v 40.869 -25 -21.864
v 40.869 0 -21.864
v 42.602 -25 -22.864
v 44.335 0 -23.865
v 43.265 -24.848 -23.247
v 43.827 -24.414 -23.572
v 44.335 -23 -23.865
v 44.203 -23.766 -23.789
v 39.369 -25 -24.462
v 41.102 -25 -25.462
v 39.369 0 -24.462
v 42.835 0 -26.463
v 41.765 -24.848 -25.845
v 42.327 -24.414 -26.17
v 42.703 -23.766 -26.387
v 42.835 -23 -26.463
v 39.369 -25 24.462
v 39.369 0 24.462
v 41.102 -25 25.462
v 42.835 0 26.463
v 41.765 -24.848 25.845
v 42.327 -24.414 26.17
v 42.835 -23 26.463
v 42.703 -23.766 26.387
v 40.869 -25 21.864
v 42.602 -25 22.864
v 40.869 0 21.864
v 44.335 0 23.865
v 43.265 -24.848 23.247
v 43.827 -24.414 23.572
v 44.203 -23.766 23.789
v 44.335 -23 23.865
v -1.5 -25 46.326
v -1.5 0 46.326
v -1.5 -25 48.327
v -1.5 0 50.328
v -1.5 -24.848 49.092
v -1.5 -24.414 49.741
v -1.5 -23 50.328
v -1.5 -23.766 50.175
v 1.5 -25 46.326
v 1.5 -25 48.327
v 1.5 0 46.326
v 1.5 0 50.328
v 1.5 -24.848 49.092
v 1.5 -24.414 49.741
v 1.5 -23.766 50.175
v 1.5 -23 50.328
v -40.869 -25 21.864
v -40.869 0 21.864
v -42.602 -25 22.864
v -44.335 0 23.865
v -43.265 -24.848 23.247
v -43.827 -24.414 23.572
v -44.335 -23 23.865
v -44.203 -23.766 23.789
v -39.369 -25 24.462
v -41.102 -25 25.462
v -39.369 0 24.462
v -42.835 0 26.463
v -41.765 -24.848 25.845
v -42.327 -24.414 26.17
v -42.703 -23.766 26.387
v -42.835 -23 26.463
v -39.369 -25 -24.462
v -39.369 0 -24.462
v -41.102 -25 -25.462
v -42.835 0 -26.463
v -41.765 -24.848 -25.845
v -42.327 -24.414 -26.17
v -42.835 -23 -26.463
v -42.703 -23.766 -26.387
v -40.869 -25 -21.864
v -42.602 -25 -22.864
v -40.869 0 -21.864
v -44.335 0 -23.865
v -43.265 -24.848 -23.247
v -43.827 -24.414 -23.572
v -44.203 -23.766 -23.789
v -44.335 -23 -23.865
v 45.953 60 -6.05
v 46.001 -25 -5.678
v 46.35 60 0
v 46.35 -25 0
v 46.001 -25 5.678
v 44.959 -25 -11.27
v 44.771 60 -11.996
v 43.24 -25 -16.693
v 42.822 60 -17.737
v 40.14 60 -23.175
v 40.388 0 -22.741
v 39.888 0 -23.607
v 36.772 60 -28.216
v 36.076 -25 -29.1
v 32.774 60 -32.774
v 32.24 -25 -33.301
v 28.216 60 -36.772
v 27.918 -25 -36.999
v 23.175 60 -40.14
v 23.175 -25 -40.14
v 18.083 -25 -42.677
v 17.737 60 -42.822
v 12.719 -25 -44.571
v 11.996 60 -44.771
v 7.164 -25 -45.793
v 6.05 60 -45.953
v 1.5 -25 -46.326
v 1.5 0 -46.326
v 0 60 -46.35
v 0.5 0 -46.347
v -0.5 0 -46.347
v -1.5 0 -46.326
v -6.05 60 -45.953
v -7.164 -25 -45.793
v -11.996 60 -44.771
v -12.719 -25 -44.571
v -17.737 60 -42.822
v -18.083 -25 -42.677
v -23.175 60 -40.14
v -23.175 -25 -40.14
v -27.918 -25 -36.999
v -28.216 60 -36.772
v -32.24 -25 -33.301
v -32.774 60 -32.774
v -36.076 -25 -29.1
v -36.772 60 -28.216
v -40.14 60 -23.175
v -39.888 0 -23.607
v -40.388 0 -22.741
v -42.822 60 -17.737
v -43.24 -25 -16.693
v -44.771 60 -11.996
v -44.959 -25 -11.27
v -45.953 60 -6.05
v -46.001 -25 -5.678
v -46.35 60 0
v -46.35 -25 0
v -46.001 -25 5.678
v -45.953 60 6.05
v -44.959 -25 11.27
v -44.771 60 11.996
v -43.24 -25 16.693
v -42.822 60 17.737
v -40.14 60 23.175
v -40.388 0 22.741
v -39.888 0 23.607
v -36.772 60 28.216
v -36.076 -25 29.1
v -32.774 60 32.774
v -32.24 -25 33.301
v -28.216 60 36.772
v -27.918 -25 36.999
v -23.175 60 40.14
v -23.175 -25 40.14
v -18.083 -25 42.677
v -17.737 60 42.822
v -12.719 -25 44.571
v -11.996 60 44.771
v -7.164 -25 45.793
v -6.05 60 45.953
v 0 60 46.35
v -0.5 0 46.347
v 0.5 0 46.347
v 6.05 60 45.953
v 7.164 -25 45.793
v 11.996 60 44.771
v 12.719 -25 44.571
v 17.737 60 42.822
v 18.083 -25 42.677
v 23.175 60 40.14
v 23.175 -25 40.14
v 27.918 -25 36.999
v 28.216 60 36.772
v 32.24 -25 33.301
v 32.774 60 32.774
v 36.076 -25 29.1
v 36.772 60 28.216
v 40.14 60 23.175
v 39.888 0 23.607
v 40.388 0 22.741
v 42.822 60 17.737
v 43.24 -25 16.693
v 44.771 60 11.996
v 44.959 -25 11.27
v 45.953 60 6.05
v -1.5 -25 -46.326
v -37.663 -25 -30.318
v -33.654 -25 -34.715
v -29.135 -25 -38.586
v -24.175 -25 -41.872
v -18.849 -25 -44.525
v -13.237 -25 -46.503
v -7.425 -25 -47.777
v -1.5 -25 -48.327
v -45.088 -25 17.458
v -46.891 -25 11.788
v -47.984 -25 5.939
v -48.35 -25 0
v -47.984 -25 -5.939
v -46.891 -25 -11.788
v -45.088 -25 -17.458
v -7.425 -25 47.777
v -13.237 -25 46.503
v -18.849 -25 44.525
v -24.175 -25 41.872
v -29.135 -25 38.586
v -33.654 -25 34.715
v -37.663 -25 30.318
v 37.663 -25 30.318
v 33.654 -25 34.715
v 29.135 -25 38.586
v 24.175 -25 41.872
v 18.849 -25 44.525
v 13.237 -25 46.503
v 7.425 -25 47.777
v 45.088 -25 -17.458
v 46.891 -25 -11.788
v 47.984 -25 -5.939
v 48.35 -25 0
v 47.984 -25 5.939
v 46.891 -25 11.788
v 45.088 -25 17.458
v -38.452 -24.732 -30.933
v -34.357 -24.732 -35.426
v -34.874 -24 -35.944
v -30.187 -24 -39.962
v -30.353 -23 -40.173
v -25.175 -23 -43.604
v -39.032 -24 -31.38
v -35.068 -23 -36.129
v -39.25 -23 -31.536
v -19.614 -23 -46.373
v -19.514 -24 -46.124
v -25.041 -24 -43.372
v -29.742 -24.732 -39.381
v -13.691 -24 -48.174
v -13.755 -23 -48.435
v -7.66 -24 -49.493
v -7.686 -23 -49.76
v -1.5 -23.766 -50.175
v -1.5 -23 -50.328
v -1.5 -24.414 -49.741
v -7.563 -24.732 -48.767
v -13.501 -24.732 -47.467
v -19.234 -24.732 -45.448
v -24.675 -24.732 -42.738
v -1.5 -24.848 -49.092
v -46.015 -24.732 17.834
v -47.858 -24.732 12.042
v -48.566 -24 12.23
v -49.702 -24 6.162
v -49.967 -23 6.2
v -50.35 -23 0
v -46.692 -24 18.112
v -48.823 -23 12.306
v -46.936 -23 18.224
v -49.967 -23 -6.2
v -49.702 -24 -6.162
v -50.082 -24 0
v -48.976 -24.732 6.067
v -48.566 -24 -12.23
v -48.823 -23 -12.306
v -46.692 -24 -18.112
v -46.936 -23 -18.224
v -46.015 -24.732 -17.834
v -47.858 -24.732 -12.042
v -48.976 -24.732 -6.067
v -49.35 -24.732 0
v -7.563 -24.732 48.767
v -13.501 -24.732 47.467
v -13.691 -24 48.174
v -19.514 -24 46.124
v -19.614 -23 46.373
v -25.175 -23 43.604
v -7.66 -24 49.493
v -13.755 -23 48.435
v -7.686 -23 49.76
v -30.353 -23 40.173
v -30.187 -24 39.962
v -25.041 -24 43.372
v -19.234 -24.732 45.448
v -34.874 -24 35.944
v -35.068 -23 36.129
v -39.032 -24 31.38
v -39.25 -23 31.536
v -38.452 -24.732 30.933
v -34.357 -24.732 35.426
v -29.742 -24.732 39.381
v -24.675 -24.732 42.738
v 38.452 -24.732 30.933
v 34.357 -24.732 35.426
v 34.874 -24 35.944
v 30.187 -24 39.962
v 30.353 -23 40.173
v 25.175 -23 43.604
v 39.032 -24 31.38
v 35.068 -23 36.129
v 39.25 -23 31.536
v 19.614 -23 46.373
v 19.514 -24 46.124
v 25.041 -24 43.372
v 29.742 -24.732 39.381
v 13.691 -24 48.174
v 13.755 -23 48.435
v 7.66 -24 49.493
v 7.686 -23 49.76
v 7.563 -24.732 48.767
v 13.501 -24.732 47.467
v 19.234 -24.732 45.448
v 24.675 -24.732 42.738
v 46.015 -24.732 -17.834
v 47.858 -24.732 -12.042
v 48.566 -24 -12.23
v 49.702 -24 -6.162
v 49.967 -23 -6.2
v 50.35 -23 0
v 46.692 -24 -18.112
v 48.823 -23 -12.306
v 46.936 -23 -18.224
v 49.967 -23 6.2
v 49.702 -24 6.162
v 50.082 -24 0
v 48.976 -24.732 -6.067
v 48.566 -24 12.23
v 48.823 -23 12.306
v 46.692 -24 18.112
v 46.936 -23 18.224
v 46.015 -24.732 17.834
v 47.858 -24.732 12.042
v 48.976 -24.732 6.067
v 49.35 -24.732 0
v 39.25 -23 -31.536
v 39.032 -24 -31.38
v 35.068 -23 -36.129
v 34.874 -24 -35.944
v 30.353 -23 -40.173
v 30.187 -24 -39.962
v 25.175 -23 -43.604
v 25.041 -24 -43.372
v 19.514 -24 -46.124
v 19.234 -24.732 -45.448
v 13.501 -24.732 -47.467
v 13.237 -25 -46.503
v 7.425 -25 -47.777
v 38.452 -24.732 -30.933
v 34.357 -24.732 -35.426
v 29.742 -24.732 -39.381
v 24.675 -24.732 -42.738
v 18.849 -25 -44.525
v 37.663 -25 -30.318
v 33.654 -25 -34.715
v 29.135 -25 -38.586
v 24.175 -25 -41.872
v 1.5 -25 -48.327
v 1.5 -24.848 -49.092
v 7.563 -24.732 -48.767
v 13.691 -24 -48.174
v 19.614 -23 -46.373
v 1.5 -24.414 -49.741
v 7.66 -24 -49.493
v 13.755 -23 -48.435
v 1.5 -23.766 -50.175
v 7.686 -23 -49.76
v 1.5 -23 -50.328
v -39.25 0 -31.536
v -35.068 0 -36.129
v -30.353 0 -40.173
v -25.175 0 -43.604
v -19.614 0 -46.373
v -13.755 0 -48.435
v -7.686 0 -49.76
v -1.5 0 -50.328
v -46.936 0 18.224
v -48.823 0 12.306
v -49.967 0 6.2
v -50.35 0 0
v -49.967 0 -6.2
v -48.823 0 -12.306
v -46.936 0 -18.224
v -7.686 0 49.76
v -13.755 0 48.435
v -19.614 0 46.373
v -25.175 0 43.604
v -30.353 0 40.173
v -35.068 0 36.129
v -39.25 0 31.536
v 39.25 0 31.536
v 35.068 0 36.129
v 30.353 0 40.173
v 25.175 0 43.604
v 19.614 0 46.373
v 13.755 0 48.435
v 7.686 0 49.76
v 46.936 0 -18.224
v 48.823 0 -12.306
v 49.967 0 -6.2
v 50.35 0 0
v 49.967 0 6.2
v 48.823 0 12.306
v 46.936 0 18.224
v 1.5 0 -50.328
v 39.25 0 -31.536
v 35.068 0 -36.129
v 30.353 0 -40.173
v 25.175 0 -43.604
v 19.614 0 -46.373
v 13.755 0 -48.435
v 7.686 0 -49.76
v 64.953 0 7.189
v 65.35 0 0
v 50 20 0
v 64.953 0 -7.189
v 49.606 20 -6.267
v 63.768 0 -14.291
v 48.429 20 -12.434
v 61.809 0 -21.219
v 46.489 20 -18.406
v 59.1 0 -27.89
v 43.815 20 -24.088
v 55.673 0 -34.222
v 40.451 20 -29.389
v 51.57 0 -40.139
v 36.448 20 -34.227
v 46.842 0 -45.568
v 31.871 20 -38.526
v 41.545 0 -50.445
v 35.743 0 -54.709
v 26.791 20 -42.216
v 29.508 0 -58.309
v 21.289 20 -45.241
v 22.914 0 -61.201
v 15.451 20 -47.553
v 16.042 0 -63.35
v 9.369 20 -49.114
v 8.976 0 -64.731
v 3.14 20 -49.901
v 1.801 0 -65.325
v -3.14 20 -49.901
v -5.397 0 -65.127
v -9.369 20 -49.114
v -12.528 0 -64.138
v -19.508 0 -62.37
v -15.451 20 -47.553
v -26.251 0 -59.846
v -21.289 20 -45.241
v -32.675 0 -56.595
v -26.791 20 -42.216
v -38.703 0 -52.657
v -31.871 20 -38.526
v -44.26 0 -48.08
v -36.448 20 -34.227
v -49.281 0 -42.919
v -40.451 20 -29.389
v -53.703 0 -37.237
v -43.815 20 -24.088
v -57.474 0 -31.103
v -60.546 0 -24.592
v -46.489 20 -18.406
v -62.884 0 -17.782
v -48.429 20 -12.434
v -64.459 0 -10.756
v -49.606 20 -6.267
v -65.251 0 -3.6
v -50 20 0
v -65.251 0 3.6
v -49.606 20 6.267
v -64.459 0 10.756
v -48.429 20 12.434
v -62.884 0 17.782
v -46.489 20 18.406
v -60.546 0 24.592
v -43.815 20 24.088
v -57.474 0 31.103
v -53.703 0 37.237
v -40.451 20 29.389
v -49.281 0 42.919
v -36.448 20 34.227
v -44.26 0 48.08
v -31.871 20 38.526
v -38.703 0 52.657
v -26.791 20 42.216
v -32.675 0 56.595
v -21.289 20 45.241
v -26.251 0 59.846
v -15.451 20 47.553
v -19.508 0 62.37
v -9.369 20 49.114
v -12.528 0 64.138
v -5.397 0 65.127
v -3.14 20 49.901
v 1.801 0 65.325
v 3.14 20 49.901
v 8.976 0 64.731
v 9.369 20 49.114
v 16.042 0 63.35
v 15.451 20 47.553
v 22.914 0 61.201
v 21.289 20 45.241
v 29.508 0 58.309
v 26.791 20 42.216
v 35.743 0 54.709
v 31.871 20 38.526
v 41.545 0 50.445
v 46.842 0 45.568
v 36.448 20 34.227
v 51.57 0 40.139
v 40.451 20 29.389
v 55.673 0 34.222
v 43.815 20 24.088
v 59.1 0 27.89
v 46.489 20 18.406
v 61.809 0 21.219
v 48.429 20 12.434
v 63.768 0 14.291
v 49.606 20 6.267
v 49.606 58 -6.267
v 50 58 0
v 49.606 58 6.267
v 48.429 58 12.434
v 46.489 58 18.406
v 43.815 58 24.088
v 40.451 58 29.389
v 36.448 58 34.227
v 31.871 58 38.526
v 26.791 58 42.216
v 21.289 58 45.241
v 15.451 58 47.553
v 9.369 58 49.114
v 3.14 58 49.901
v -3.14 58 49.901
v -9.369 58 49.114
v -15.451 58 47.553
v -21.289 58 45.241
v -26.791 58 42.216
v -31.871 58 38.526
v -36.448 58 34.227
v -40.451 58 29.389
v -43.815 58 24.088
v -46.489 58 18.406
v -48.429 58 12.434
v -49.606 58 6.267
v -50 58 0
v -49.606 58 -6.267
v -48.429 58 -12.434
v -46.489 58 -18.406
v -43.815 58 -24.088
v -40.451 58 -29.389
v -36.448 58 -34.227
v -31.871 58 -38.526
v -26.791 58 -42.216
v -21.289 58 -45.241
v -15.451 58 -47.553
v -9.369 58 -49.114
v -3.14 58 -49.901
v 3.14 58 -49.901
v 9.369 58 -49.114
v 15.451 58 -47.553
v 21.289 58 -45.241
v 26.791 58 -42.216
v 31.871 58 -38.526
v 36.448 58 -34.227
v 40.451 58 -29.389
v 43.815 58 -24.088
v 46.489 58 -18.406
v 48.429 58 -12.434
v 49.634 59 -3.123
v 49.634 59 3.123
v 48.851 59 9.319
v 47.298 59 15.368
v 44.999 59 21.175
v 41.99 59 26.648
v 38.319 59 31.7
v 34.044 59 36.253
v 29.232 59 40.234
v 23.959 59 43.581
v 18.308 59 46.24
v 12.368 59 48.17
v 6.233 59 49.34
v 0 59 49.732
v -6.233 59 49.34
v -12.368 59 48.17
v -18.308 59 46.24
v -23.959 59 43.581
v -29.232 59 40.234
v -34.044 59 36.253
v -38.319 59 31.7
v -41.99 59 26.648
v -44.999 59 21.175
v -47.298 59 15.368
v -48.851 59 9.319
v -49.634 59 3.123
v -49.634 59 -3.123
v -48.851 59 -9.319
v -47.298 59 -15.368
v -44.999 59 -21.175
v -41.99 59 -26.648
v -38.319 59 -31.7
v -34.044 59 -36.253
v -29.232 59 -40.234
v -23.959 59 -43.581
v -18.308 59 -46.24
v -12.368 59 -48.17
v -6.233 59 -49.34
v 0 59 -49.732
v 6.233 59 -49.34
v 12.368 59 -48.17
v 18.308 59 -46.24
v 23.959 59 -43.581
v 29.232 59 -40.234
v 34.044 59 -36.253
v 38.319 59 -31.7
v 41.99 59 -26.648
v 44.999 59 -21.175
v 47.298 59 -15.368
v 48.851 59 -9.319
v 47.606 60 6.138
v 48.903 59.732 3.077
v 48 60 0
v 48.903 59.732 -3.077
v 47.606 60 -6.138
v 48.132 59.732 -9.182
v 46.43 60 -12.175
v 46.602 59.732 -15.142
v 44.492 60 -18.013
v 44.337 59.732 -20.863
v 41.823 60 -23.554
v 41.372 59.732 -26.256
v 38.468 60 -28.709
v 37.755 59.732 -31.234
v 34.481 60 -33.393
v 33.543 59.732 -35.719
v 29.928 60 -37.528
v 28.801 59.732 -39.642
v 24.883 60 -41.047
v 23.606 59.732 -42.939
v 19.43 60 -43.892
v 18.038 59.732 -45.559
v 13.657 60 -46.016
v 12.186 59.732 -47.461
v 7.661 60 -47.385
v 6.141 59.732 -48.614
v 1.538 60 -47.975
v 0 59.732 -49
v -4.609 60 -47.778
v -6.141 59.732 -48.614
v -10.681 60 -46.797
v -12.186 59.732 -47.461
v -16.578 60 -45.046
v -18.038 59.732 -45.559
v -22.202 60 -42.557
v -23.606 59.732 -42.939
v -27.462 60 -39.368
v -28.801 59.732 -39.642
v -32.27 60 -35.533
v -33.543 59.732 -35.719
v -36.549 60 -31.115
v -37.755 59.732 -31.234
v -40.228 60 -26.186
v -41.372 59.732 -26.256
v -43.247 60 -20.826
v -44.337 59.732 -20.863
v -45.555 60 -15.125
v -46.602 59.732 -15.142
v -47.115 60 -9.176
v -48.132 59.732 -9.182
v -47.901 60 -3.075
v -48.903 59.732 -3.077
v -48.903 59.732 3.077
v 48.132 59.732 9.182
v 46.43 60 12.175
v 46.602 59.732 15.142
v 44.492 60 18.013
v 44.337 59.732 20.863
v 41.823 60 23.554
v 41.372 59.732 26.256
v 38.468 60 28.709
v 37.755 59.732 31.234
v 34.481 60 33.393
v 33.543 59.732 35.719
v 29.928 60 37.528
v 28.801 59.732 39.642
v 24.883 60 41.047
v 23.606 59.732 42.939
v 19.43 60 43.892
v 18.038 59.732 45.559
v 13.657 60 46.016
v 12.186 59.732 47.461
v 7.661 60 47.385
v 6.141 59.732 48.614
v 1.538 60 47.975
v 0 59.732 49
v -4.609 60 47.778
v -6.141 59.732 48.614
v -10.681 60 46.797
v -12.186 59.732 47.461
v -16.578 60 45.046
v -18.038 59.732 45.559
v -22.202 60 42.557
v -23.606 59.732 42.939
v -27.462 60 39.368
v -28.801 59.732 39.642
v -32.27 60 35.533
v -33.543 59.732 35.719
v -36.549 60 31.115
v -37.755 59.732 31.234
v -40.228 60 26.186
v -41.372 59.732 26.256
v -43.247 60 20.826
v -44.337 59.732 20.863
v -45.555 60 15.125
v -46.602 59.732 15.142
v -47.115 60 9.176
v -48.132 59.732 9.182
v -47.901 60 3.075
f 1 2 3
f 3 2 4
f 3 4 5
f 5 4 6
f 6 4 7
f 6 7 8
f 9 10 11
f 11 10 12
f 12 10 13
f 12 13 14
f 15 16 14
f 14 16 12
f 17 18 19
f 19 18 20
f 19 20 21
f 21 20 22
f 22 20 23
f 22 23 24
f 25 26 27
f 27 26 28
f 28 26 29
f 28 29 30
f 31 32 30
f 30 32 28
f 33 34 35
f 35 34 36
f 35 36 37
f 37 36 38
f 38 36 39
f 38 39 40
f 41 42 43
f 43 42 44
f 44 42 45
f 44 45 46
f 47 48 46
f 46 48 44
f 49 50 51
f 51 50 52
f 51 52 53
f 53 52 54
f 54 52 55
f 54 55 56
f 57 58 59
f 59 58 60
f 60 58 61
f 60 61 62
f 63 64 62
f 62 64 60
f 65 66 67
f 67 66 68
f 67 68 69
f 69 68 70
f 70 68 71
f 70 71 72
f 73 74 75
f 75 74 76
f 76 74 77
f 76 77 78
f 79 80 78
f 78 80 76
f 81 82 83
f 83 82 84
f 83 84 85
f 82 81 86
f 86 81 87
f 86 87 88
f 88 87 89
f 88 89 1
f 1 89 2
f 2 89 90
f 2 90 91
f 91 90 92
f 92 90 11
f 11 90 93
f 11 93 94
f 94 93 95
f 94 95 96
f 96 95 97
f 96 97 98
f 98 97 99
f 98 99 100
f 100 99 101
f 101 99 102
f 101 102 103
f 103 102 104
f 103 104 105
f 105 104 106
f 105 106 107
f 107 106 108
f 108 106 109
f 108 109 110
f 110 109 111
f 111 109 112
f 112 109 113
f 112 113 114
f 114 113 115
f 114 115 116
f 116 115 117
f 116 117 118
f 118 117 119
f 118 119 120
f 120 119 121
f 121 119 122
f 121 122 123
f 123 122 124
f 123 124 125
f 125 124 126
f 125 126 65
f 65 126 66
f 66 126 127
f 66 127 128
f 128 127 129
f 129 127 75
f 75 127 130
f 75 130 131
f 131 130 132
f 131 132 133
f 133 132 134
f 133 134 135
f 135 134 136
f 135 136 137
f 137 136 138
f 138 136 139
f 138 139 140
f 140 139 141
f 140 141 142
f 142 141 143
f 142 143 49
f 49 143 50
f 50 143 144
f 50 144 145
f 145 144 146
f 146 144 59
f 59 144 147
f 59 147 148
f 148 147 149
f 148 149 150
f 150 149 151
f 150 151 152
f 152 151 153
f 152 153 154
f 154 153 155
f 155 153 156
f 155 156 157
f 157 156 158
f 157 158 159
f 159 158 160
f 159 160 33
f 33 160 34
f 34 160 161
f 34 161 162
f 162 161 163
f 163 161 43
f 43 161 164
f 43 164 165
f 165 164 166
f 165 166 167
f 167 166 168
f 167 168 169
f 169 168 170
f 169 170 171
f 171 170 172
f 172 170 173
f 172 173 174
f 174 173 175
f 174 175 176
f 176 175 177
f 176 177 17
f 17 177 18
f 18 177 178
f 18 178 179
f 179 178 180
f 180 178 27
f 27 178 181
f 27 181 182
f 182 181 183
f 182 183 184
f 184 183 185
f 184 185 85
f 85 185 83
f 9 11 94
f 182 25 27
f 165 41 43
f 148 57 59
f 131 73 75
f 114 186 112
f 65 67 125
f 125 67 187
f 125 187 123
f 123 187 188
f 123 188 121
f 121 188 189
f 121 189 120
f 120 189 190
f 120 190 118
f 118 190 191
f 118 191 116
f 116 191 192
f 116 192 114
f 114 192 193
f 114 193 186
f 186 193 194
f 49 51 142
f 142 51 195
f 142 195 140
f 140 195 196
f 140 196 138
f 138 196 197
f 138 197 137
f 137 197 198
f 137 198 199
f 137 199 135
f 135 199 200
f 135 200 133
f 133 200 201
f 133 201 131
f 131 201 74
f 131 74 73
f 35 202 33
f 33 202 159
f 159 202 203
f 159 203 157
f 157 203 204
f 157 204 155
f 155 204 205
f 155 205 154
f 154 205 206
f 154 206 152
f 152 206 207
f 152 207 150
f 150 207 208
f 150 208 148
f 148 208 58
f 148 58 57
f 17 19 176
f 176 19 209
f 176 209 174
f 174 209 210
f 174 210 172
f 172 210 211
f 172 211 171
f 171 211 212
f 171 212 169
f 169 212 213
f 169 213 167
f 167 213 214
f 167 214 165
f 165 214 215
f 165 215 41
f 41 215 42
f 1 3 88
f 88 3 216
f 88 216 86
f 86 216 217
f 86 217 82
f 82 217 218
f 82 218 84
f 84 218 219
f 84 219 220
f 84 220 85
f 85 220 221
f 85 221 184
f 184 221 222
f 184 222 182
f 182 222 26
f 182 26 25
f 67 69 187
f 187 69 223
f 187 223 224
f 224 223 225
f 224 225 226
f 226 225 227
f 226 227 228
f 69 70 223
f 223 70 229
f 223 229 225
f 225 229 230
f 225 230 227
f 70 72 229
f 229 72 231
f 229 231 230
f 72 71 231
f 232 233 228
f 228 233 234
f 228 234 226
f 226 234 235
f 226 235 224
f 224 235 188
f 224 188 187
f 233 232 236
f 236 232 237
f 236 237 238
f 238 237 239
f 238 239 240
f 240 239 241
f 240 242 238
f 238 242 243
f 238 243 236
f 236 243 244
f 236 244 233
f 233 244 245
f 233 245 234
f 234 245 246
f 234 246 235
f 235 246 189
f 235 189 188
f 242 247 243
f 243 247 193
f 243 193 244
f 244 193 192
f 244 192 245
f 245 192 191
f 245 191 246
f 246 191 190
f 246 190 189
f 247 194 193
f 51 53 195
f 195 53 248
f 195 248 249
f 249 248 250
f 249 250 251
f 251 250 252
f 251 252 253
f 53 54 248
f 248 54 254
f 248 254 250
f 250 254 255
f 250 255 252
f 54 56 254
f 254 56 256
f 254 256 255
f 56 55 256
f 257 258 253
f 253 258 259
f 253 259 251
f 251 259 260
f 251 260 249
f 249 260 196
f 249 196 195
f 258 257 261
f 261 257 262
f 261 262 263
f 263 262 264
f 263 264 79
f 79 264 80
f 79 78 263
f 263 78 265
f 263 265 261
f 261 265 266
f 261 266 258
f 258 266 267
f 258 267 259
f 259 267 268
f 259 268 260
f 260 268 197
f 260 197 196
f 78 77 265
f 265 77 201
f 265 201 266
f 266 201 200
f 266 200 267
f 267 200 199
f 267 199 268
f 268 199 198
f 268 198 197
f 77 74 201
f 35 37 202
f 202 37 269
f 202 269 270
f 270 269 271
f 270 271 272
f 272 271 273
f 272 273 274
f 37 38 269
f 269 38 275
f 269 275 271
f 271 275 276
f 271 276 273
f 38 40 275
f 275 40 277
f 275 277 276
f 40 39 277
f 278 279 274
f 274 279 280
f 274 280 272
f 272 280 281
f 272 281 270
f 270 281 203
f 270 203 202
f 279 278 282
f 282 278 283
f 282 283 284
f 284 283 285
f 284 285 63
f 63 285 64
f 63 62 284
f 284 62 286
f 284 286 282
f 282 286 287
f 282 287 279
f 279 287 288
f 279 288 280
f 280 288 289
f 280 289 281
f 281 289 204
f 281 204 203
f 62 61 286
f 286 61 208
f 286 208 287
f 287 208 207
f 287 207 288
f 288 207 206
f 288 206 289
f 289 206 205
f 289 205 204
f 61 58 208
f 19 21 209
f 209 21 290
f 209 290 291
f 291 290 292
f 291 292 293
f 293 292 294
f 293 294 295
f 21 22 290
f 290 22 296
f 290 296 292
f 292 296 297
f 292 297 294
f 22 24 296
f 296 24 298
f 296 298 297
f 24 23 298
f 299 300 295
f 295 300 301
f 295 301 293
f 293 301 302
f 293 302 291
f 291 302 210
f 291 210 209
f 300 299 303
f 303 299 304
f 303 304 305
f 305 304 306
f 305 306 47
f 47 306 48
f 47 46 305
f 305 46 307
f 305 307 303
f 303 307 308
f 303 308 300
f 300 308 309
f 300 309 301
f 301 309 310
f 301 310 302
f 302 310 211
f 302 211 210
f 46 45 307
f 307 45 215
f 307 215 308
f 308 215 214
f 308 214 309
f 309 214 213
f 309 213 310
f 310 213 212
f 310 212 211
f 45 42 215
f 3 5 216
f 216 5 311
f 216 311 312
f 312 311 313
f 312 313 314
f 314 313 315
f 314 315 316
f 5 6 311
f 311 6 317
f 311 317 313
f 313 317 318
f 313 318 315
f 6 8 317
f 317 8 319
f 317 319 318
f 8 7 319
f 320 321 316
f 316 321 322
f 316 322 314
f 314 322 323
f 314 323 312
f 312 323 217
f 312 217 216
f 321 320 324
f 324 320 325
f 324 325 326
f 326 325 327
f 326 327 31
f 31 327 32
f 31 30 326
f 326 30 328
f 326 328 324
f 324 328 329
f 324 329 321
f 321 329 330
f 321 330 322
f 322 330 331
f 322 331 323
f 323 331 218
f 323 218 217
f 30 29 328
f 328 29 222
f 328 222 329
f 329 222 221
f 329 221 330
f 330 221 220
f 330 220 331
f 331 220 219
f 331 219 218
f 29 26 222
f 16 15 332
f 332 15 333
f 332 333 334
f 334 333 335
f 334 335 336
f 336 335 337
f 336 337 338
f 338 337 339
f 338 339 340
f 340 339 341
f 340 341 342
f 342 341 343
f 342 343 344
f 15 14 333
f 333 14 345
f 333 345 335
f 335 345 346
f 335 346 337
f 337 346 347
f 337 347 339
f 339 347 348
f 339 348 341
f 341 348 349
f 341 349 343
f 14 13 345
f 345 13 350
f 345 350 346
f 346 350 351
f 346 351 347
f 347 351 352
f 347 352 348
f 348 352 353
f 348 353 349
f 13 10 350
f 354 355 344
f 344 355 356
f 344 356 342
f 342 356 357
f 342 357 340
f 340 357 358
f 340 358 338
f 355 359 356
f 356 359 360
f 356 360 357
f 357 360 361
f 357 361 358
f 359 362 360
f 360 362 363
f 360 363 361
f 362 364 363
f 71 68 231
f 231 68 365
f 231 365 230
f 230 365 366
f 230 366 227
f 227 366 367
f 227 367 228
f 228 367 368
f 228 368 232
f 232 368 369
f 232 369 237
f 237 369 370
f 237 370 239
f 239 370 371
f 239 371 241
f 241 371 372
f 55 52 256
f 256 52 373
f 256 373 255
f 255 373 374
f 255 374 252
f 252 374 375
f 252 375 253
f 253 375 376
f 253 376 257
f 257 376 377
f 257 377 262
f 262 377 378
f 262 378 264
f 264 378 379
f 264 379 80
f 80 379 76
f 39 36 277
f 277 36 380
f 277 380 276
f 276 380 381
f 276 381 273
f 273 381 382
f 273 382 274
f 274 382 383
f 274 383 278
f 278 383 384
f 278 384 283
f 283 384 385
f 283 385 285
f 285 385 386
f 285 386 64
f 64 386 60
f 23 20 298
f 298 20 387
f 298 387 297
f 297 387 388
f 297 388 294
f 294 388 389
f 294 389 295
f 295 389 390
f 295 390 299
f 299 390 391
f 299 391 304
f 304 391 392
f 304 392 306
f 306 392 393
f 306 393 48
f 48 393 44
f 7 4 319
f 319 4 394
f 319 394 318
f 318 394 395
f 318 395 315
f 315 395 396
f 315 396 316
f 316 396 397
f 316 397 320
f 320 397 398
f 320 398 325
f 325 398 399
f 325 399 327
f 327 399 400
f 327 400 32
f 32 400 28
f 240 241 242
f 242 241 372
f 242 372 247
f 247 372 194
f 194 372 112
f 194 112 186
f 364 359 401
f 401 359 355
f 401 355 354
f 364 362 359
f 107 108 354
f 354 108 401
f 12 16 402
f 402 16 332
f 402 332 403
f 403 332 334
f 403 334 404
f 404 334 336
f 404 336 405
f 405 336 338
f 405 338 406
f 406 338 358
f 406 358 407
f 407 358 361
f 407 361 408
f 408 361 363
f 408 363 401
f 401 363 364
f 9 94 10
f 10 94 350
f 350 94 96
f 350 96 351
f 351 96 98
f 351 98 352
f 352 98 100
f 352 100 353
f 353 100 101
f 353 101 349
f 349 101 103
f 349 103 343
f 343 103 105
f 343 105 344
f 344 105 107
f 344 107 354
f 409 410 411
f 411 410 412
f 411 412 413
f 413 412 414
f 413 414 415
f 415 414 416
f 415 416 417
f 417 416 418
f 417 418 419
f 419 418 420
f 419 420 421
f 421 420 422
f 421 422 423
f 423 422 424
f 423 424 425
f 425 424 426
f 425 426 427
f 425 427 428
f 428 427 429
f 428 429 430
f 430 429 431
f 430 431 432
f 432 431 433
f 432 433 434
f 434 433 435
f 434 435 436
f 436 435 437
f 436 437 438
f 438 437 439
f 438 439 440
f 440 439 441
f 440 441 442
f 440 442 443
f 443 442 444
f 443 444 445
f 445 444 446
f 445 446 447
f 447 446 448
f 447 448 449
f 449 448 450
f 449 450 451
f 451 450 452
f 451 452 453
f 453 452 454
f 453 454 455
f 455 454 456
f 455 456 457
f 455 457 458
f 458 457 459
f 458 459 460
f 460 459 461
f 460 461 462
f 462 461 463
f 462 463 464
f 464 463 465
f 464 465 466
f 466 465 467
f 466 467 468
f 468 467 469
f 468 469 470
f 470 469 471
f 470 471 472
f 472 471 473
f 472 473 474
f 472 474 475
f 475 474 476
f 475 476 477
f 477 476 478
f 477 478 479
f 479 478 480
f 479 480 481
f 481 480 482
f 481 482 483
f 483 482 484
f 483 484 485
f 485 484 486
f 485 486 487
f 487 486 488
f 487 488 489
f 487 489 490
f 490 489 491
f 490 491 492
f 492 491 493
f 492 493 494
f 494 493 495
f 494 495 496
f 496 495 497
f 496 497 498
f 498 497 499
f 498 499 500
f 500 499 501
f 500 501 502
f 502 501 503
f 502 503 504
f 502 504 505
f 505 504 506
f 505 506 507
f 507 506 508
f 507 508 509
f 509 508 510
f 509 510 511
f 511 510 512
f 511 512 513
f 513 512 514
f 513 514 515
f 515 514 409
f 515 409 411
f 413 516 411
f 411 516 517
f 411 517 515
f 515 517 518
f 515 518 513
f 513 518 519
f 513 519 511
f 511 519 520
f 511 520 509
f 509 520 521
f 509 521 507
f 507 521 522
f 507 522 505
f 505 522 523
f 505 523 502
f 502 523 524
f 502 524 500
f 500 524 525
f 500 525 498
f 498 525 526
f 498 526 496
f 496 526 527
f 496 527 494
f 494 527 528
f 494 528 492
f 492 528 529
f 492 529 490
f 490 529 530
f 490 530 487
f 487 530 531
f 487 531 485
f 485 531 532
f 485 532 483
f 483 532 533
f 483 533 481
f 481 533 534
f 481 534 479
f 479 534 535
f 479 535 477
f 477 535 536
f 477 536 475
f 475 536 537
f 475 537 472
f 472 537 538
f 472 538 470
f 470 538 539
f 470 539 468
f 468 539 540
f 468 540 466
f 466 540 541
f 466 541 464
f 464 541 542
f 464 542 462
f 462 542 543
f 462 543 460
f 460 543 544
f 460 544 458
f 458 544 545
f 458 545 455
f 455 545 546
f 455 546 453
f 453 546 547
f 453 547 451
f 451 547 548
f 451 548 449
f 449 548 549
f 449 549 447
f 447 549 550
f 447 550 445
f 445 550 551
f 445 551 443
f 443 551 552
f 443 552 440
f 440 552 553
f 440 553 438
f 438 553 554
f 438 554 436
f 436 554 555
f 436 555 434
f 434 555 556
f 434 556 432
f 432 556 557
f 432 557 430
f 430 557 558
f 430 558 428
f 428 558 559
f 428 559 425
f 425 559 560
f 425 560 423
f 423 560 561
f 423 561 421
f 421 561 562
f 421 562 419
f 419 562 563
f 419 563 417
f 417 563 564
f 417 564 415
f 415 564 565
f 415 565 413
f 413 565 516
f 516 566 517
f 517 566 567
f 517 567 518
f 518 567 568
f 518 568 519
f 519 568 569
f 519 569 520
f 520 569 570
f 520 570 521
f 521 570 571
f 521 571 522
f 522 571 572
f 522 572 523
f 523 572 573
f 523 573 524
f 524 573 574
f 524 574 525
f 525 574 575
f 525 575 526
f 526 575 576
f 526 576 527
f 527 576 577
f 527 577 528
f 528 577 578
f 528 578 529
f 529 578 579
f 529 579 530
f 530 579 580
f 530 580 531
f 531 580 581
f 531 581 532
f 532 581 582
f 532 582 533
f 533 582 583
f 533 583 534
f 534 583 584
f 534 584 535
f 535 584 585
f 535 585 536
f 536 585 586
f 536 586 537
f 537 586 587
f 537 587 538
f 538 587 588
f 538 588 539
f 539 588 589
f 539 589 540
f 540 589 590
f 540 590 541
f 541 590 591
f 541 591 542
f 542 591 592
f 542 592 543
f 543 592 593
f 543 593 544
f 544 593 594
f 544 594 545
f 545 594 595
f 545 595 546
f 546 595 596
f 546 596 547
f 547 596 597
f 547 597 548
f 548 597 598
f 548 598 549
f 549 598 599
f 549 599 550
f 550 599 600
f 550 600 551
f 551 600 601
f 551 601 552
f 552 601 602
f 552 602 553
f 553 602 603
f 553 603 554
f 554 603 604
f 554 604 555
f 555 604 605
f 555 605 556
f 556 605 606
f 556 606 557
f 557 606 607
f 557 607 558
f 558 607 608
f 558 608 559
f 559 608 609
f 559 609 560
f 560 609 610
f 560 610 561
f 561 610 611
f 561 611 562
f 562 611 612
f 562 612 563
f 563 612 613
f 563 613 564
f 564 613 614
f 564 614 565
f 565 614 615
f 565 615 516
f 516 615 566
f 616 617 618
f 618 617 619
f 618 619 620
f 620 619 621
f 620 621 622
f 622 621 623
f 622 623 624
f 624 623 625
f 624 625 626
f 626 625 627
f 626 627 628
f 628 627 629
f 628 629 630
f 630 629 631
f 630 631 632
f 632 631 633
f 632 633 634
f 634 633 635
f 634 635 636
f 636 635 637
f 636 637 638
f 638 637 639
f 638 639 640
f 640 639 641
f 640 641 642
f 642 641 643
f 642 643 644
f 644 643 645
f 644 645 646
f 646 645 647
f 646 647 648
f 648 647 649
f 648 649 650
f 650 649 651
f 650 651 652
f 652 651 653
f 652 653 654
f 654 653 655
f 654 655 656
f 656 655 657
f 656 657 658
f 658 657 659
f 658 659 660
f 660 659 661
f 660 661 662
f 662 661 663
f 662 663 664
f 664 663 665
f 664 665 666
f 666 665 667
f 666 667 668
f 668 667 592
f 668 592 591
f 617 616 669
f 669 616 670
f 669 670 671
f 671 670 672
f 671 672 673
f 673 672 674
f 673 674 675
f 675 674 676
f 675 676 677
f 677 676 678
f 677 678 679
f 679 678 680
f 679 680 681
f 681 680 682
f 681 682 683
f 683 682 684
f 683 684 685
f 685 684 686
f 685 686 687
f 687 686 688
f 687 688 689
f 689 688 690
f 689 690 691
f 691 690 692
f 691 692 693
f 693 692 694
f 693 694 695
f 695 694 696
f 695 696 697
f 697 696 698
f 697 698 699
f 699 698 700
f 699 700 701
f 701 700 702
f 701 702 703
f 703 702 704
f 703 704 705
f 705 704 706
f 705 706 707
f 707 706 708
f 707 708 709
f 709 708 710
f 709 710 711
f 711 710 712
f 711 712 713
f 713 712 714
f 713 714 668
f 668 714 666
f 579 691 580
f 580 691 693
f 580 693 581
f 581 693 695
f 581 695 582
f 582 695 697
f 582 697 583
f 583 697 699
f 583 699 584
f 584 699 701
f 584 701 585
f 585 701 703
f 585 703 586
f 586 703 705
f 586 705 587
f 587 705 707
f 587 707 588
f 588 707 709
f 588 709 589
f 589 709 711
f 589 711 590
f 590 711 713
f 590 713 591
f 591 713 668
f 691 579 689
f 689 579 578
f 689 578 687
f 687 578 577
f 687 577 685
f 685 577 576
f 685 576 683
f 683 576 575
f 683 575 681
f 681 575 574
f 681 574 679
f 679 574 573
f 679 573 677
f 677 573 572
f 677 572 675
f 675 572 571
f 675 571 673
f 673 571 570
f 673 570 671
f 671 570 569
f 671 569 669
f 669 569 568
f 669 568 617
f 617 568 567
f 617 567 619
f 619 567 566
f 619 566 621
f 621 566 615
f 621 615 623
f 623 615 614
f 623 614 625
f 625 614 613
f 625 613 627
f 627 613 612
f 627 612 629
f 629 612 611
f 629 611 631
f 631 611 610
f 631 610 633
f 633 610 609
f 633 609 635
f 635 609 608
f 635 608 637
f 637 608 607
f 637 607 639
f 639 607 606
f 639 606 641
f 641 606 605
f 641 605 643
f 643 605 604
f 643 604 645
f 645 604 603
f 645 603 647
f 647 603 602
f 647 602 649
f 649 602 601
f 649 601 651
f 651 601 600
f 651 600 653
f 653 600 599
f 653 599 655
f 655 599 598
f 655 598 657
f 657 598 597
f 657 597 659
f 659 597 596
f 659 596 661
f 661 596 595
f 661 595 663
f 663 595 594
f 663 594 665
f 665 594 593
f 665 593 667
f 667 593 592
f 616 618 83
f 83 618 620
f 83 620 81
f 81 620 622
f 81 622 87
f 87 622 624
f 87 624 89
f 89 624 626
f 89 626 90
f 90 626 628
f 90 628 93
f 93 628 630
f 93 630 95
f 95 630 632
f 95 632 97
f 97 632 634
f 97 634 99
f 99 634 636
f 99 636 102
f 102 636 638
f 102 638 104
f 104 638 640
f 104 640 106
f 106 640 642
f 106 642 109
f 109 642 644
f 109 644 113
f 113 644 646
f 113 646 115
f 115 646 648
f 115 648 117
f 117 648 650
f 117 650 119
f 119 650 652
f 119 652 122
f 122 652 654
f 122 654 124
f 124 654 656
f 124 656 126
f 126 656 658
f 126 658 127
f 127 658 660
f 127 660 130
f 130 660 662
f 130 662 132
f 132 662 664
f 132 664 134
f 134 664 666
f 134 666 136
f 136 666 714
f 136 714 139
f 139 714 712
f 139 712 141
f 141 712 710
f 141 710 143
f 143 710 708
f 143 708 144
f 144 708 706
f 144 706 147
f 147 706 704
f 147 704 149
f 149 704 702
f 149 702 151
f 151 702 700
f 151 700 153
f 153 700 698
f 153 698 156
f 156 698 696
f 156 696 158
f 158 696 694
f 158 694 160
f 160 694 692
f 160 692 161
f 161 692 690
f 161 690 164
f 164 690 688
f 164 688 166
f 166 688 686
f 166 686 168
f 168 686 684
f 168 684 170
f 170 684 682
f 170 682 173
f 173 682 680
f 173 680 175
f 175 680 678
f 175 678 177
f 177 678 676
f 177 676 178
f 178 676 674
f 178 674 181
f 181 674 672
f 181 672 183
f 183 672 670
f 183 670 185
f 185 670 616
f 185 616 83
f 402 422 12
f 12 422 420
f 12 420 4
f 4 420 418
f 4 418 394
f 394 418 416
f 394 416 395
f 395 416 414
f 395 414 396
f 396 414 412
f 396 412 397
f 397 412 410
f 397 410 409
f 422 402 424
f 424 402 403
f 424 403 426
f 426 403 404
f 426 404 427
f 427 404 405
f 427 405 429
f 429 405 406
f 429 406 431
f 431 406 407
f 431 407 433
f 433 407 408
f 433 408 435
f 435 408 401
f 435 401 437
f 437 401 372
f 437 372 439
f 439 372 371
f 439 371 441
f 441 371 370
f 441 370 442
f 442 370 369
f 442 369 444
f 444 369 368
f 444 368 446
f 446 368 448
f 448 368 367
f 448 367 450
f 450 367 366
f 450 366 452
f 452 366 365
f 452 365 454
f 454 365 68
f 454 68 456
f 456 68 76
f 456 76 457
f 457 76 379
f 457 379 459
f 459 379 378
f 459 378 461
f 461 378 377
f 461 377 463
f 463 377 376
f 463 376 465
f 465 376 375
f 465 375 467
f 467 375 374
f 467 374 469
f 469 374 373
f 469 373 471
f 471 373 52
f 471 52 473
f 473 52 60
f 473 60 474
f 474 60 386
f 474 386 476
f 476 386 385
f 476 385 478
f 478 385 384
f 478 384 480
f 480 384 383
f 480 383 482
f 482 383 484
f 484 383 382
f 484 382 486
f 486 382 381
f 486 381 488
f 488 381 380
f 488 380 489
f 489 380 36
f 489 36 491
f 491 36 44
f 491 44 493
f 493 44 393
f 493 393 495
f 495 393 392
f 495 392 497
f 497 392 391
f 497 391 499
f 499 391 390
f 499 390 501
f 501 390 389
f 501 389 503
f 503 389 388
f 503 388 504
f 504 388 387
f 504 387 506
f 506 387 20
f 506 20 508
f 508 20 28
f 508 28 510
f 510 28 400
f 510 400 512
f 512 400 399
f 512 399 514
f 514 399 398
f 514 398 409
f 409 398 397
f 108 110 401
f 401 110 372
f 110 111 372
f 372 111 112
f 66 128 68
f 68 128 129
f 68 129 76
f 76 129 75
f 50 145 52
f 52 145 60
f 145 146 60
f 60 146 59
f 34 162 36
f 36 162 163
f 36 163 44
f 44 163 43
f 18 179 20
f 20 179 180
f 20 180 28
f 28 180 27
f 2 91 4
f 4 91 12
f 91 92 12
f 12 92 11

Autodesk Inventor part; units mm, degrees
ref_plane "YZ Plane" through (0, 0, 0) normal (1, 0, 0) x (0, 1, 0)
ref_plane "XZ Plane" through (0, 0, 0) normal (0, 1, 0) x (-1, 0, 0)
ref_plane "XY Plane" through (0, 0, 0) normal (0, 0, 1) x (1, 0, 0)
sketch "Sketch1" plane through (0, 0, 0) normal (0, 0, 1) x (1, 0, 0)
  line L0 (-50.35, 0) -> (-46.35, 0)
  line L1 (-46.35, 0) -> (-46.35, -25)
  line L2 (-46.35, -25) -> (-48.35, -25)
  line L3 (-50.35, -23) -> (-50.35, 0)
  line L4 (-46.35, 20) -> (-50, 20)
  line L5 (-50, 20) -> (-50, 58)
  line L6 (-48, 60) -> (-46.35, 60)
  line L7 (-46.35, 60) -> (-46.35, 20)
  line L8 (-50.35, 0) -> (-65.35, 0)
  line L9 (-65.35, 0) -> (-50, 20)
  line L10 (-46.35, 20) -> (-46.35, 0)
  arc A0 (-48, 60) -> (-50, 58) centre (-48, 58) ccw
  arc A1 (-50.35, -23) -> (-48.35, -25) centre (-48.35, -23) ccw
  line L11 (0, -42.5799) -> (0, 77.5799) projected
  point P0 (0, 0)
  point P1 (-50.35, -25)
  point P2 (-50, 60)
  point P3 (-48.35, 0)
  dimension "d4" = 4
  dimension "d5" = 25
  dimension "d7" = 40
  dimension "d8" = 15
  dimension "d9" = 50.35
  dimension "d10" = 2
  dimension "d12" = 20
  dimension "d20" = 50
revolve "Revolution1" add sketch "Sketch1" angle 360 about axis through (0, -10, 0) along (0, 1, 0)
sketch "Sketch2" plane through (0, -25, 0) normal (0, -1, 0) x (1, 0, 0)
  line L0 (1.5, 41.35) -> (-1.5, 41.35)
  line L1 (-1.5, 41.35) -> (-1.5, 51.35)
  line L2 (-1.5, 51.35) -> (1.5, 51.35)
  line L3 (1.5, 51.35) -> (1.5, 41.35)
  circle A0 centre (0, 0) radius 46.35 projected
  line L4 (1.5, 41.35) -> (-1.5, 51.35) construction
  line L5 (-1.5, 41.35) -> (1.5, 51.35) construction
  point P0 (0, 46.35)
  dimension "d13" = 3
  dimension "d14" = 10
extrude "Extrusion1" cut sketch "Sketch2" against normal blind 25 contours L0 L1 A0 L3 | A0 L1 L2 L3 picked at (-0.1667, 43.0158)
pattern_circular "Circular Pattern1" count 6 over 360 about axis through (0, -10, 0) along (0, 1, 0) of "Extrusion1"
properties part number "top-ventilation-tube-adapter-100.9mmID-to-95mmID"
